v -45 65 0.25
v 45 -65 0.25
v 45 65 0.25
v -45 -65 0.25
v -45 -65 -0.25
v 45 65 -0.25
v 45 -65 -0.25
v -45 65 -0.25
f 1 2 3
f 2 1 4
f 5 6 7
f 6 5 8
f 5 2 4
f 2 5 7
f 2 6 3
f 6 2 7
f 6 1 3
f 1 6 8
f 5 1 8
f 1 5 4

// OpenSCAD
/* menu_card.scad 
 * 
 * just an A4-paper sized cube, so that we can make
 * a Collada and put a texture on it... Gazebo 7+
 * doesn't support textures on STLs anymore.
 *
 * Dimensions are in millimeters, scale 0.001 for ROS.
 * Origin is at the center.
 */
 
 
command_card();



module command_card() { card( w=90, h=130, d=0.5 ); }


module card_A4() { card(); }

module card_A6() { card( w=105, h=149, d=0.5 ); }

 
module card(
  w = 210,
  h = 297,
  d = 0.5
  )
{
  cube( size=[w,h,d], center=true );
}
